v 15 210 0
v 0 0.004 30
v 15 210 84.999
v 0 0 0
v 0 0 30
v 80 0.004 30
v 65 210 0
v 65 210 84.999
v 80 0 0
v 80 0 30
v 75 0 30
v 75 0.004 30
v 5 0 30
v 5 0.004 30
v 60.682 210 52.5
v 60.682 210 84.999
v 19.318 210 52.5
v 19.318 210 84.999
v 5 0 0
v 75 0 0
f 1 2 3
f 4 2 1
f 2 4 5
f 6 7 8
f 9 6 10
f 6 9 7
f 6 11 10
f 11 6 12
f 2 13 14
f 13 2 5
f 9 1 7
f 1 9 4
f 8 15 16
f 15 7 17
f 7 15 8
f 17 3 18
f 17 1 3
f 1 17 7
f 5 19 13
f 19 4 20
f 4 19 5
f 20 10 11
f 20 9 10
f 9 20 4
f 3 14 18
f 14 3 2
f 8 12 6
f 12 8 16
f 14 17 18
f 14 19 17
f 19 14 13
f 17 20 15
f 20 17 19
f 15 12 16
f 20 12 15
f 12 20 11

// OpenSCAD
// *                Render Resolution
// *                
$fn = $preview ? 24 : 180;



    module wedge(w1=80,dw=15,l=210,h=55){
        polyhedron(
            points=[[0,0,0], [w1,0,0], [w1-dw,l,0], [dw,l,0], [dw,l,h], [w1-dw,l,h]],
            faces=[[0,1,2,3],[5,4,3,2],[0,4,5,1],[0,3,4],[5,2,1]]
        );
    }
   
    module bar(w=80,dw=15,l=210,h1=0,h2=50){
        polyhedron(
            points=[[0,0,0], [w,0,0], [w-dw,l,h1], [dw,l,h1], [0,0,h2 ], [w,0,h2], [w-dw,l,h2], [dw,l,h2] ],
            faces=[
                [0,1,2,3],  // bottom
                [4,5,1,0],  // front
                [7,6,5,4],  // top
                [5,6,2,1],  // right
                [6,7,3,2],  // back
                [7,4,0,3]] // left
        );
    }


//translate([0,-200,0])
   
difference(){
    union(){
        bar(h2=30);
        translate([0,0,30-0.001]) wedge();
    }
    translate([5,-0.001,0])  bar(w=70,h1=55,h2=90,l=220);
    //translate([70,220,0]) rotate([90,0,11]) cylinder(h=230,r=30);
    
};
